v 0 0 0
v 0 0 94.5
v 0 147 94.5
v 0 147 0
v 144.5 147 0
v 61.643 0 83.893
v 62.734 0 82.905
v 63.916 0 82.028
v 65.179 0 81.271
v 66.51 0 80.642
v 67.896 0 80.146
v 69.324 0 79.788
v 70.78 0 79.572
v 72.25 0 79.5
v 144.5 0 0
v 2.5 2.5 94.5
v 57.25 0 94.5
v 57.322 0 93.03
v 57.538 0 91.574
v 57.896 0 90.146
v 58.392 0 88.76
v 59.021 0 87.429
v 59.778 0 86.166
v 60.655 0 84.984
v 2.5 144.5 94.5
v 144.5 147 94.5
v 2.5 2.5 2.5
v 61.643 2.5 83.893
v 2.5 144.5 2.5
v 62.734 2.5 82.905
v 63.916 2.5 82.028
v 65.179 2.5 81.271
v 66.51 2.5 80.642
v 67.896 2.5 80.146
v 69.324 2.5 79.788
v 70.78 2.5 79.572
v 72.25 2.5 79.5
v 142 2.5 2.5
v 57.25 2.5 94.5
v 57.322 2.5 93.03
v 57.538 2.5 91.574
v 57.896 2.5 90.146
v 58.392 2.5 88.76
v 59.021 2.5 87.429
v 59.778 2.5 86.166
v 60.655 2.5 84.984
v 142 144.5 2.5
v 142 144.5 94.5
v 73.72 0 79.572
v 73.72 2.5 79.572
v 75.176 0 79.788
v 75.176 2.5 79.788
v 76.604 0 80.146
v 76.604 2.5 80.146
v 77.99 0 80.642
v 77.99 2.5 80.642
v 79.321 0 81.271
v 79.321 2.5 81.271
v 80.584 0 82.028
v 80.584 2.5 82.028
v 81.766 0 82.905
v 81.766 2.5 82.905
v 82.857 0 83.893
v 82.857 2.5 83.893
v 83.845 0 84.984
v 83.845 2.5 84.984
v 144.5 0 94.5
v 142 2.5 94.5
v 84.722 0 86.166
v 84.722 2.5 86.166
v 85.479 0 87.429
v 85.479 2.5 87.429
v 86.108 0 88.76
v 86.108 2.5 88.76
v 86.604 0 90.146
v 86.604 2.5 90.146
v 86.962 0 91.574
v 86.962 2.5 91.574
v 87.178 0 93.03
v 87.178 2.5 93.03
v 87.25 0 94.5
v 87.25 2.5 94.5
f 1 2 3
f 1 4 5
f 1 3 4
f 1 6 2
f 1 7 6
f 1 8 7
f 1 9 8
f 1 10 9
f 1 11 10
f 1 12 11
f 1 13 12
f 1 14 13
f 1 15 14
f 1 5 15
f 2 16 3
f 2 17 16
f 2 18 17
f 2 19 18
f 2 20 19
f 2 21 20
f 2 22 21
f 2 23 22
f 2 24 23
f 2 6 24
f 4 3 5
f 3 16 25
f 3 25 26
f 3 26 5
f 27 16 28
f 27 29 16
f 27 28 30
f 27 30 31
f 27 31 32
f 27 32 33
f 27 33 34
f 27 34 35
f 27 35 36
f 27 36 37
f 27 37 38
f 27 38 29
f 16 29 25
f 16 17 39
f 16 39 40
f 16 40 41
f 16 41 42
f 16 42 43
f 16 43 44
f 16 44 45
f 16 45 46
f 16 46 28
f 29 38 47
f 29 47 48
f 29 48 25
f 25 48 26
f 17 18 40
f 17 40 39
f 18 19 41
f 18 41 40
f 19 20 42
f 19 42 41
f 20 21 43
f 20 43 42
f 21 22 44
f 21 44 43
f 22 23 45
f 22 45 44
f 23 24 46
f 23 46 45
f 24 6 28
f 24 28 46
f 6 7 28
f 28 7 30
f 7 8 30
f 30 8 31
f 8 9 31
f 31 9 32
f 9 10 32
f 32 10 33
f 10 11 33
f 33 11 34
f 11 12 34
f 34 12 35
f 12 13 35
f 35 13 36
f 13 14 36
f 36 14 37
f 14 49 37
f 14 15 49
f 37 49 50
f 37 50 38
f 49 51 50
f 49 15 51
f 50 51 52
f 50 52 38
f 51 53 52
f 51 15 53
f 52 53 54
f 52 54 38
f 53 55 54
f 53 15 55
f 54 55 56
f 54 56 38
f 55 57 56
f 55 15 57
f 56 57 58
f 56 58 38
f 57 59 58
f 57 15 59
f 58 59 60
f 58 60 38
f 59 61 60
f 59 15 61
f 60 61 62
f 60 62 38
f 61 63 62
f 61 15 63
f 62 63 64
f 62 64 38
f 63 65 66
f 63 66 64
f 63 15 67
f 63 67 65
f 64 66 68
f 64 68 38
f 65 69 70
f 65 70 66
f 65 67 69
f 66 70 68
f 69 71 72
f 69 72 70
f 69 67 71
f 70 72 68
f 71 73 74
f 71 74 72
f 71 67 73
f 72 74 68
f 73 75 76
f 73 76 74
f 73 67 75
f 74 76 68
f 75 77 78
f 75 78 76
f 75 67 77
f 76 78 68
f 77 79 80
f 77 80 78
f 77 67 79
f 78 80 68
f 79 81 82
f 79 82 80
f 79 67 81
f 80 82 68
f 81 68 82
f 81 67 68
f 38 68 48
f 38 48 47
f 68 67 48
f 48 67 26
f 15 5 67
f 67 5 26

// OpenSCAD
// inner box first form
// 28.09.2025 Sebastian Weigl
 
// set the fregment sizes
$fn = $preview ? 48 : 64;

// vars
border=2.5;
clearence=0.5;

fir_box_width=144.5;
fir_box_depth=147;
fir_box_height=94.5;

sec_box_width=144.5-(border+border);
sec_box_depth=147-(border+border);
sec_box_height=94.5-(border);

difference() {
cube([fir_box_width,fir_box_depth,fir_box_height],false);
  translate([border,border,border])
    #cube([sec_box_width,sec_box_depth,sec_box_height],false);
  translate([fir_box_width/2,0,fir_box_height])
  rotate([90])
    #cylinder(h=20,r=15,center=true);
}
